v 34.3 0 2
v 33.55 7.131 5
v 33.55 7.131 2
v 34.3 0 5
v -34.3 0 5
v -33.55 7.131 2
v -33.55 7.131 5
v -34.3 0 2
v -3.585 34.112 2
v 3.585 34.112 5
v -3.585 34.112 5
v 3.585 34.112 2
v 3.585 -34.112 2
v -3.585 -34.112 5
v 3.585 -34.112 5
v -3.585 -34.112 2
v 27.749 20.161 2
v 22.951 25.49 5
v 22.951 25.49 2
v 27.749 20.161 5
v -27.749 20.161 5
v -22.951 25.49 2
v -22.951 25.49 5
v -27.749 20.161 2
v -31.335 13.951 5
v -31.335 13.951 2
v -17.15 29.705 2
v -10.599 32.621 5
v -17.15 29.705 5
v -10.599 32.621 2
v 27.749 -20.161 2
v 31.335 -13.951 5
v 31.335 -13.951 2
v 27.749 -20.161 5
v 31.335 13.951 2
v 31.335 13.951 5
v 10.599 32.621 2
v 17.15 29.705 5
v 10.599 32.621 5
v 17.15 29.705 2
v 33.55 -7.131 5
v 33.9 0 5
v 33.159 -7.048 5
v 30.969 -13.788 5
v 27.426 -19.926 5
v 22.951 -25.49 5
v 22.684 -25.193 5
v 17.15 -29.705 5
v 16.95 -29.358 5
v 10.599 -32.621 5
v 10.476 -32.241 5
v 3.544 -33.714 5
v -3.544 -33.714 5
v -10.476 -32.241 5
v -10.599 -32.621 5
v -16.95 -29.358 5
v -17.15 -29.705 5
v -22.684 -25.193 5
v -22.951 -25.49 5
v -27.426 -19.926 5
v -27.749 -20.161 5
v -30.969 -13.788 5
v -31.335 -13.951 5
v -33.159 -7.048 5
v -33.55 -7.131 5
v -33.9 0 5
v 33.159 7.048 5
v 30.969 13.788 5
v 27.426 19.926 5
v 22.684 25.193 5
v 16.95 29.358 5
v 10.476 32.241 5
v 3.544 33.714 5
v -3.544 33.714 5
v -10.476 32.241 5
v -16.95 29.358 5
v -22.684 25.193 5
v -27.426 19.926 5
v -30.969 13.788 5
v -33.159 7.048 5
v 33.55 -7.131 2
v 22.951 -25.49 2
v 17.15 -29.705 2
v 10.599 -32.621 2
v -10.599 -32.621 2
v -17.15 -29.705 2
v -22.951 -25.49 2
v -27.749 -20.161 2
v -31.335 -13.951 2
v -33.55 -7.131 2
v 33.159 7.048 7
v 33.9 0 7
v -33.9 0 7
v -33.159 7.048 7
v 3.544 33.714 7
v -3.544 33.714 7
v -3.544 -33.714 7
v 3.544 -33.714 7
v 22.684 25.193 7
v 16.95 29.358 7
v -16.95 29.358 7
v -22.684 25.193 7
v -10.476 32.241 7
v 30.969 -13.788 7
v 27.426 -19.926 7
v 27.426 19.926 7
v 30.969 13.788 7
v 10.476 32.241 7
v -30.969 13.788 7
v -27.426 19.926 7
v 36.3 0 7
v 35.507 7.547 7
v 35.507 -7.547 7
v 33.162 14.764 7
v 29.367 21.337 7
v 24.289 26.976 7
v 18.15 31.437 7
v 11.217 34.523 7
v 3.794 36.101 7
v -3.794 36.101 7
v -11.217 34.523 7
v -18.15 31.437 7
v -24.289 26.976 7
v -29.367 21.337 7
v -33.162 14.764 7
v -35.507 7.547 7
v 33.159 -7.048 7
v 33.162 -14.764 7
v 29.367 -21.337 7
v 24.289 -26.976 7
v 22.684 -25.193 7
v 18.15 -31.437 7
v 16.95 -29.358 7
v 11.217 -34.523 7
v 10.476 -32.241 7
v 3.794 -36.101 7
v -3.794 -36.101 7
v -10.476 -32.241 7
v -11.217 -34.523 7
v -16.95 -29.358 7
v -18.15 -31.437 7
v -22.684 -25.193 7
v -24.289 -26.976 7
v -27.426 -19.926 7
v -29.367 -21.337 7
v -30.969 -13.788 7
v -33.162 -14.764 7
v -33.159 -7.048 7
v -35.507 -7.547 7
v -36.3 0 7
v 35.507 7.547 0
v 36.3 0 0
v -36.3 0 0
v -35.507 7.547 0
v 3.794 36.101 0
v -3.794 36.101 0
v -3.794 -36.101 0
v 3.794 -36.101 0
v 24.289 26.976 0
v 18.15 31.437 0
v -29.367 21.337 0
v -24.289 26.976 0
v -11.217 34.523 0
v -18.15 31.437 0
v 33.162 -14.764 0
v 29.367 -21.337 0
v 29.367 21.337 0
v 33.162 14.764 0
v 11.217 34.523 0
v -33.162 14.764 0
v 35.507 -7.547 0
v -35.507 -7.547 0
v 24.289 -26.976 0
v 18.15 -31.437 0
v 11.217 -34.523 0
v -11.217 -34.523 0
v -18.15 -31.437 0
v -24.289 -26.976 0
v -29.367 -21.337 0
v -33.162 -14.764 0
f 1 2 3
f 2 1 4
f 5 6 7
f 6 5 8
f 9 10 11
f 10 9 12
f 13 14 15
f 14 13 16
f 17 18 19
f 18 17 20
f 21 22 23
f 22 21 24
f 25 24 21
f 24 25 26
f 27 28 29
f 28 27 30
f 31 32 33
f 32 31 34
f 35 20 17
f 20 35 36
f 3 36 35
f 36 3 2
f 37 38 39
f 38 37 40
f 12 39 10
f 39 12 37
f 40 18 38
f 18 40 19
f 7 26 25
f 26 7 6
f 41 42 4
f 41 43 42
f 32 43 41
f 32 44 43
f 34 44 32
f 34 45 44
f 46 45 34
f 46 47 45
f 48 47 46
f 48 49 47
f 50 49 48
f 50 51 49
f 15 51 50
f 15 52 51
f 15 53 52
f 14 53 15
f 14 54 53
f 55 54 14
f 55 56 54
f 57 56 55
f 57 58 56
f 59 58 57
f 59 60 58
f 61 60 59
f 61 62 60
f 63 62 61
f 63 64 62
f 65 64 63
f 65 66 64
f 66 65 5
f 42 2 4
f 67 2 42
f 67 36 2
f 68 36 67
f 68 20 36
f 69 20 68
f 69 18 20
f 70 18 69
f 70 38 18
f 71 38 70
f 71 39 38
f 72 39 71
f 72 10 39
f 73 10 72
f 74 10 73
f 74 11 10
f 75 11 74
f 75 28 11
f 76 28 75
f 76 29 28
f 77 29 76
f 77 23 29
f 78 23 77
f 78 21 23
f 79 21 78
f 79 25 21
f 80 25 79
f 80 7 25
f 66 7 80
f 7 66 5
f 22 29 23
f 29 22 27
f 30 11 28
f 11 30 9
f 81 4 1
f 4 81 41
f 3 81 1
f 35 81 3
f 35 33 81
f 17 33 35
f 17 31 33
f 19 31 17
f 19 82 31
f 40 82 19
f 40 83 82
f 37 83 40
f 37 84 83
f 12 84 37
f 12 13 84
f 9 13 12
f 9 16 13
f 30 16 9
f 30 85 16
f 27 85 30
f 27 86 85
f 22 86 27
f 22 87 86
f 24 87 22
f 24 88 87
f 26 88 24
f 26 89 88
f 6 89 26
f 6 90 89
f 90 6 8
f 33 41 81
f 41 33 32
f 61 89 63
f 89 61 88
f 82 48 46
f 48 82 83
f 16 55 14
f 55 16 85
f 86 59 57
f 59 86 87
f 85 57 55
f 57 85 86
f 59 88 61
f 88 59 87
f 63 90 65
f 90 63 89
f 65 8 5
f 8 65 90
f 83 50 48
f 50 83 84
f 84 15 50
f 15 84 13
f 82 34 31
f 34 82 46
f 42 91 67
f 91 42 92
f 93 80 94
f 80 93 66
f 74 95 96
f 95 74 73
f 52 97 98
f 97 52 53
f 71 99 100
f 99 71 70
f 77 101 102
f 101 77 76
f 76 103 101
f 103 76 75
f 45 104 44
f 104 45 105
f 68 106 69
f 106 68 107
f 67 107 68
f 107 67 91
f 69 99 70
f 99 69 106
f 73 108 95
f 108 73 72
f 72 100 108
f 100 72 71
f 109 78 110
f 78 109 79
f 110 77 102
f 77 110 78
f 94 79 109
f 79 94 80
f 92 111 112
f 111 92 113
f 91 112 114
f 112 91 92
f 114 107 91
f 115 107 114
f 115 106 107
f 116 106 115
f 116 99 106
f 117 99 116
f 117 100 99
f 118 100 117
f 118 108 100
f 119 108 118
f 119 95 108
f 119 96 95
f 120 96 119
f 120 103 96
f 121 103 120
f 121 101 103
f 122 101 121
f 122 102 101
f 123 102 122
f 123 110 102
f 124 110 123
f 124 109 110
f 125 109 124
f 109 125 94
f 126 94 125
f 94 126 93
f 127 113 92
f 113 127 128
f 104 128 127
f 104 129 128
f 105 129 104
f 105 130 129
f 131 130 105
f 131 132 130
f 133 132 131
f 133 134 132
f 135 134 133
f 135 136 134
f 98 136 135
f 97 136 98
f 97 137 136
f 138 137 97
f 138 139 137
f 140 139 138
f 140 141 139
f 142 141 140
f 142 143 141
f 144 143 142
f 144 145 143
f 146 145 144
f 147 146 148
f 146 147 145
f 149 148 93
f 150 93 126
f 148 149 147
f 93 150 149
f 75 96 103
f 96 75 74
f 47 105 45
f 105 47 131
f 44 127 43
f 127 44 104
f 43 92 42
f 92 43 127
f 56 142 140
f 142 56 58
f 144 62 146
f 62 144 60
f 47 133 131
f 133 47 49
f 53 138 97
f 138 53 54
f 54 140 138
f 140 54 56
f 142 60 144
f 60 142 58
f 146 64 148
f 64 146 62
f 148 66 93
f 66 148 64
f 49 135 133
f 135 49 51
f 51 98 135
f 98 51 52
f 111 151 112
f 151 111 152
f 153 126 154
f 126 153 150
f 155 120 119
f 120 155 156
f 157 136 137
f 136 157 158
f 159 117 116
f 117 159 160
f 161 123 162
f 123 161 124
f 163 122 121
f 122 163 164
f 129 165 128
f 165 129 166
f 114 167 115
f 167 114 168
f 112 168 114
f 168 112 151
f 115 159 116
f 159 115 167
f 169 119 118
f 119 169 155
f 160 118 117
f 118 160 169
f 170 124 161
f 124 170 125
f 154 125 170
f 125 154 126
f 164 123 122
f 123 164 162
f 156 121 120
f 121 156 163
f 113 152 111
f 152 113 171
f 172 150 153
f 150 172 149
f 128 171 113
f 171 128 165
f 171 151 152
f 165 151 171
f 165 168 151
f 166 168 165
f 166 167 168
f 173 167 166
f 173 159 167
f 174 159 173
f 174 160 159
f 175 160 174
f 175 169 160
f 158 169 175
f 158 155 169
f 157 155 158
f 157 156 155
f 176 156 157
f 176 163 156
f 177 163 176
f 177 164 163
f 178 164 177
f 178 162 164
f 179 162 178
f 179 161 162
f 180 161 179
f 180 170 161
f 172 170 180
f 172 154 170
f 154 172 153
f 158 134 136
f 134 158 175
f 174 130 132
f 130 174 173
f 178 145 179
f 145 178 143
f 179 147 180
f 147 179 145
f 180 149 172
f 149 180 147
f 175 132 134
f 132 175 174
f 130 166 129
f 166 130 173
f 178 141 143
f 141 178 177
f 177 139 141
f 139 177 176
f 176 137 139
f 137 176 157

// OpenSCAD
// Parameters
// Diameter of the can
d1 = 67.3 + 1.3;
// Inner diameter
d2 = d1 - 0.8;
// Outer diameter of the lid
d0 = d1 + 4;

// Height of the basement
h0 = 2;
// Height of the inner part
h1 = 3;
// Height of the outer part
h2 = 2;

// Overall height of the lid
h = h0 + h1 + h2;

// See http://www.openscad.org/cheatsheet/

module body() {
    cylinder(h = h, d = d0, center = false);
}

module can() {
    cylinder(h = h1, d = d1, center = false);
    translate([0, 0, h1]) {
        cylinder(h = h2, d = d2, center = false);
    }
}

module lid() {
    difference() {
        body();
        translate([0, 0, h0]) {
            can();
        }
    }
}

lid();
